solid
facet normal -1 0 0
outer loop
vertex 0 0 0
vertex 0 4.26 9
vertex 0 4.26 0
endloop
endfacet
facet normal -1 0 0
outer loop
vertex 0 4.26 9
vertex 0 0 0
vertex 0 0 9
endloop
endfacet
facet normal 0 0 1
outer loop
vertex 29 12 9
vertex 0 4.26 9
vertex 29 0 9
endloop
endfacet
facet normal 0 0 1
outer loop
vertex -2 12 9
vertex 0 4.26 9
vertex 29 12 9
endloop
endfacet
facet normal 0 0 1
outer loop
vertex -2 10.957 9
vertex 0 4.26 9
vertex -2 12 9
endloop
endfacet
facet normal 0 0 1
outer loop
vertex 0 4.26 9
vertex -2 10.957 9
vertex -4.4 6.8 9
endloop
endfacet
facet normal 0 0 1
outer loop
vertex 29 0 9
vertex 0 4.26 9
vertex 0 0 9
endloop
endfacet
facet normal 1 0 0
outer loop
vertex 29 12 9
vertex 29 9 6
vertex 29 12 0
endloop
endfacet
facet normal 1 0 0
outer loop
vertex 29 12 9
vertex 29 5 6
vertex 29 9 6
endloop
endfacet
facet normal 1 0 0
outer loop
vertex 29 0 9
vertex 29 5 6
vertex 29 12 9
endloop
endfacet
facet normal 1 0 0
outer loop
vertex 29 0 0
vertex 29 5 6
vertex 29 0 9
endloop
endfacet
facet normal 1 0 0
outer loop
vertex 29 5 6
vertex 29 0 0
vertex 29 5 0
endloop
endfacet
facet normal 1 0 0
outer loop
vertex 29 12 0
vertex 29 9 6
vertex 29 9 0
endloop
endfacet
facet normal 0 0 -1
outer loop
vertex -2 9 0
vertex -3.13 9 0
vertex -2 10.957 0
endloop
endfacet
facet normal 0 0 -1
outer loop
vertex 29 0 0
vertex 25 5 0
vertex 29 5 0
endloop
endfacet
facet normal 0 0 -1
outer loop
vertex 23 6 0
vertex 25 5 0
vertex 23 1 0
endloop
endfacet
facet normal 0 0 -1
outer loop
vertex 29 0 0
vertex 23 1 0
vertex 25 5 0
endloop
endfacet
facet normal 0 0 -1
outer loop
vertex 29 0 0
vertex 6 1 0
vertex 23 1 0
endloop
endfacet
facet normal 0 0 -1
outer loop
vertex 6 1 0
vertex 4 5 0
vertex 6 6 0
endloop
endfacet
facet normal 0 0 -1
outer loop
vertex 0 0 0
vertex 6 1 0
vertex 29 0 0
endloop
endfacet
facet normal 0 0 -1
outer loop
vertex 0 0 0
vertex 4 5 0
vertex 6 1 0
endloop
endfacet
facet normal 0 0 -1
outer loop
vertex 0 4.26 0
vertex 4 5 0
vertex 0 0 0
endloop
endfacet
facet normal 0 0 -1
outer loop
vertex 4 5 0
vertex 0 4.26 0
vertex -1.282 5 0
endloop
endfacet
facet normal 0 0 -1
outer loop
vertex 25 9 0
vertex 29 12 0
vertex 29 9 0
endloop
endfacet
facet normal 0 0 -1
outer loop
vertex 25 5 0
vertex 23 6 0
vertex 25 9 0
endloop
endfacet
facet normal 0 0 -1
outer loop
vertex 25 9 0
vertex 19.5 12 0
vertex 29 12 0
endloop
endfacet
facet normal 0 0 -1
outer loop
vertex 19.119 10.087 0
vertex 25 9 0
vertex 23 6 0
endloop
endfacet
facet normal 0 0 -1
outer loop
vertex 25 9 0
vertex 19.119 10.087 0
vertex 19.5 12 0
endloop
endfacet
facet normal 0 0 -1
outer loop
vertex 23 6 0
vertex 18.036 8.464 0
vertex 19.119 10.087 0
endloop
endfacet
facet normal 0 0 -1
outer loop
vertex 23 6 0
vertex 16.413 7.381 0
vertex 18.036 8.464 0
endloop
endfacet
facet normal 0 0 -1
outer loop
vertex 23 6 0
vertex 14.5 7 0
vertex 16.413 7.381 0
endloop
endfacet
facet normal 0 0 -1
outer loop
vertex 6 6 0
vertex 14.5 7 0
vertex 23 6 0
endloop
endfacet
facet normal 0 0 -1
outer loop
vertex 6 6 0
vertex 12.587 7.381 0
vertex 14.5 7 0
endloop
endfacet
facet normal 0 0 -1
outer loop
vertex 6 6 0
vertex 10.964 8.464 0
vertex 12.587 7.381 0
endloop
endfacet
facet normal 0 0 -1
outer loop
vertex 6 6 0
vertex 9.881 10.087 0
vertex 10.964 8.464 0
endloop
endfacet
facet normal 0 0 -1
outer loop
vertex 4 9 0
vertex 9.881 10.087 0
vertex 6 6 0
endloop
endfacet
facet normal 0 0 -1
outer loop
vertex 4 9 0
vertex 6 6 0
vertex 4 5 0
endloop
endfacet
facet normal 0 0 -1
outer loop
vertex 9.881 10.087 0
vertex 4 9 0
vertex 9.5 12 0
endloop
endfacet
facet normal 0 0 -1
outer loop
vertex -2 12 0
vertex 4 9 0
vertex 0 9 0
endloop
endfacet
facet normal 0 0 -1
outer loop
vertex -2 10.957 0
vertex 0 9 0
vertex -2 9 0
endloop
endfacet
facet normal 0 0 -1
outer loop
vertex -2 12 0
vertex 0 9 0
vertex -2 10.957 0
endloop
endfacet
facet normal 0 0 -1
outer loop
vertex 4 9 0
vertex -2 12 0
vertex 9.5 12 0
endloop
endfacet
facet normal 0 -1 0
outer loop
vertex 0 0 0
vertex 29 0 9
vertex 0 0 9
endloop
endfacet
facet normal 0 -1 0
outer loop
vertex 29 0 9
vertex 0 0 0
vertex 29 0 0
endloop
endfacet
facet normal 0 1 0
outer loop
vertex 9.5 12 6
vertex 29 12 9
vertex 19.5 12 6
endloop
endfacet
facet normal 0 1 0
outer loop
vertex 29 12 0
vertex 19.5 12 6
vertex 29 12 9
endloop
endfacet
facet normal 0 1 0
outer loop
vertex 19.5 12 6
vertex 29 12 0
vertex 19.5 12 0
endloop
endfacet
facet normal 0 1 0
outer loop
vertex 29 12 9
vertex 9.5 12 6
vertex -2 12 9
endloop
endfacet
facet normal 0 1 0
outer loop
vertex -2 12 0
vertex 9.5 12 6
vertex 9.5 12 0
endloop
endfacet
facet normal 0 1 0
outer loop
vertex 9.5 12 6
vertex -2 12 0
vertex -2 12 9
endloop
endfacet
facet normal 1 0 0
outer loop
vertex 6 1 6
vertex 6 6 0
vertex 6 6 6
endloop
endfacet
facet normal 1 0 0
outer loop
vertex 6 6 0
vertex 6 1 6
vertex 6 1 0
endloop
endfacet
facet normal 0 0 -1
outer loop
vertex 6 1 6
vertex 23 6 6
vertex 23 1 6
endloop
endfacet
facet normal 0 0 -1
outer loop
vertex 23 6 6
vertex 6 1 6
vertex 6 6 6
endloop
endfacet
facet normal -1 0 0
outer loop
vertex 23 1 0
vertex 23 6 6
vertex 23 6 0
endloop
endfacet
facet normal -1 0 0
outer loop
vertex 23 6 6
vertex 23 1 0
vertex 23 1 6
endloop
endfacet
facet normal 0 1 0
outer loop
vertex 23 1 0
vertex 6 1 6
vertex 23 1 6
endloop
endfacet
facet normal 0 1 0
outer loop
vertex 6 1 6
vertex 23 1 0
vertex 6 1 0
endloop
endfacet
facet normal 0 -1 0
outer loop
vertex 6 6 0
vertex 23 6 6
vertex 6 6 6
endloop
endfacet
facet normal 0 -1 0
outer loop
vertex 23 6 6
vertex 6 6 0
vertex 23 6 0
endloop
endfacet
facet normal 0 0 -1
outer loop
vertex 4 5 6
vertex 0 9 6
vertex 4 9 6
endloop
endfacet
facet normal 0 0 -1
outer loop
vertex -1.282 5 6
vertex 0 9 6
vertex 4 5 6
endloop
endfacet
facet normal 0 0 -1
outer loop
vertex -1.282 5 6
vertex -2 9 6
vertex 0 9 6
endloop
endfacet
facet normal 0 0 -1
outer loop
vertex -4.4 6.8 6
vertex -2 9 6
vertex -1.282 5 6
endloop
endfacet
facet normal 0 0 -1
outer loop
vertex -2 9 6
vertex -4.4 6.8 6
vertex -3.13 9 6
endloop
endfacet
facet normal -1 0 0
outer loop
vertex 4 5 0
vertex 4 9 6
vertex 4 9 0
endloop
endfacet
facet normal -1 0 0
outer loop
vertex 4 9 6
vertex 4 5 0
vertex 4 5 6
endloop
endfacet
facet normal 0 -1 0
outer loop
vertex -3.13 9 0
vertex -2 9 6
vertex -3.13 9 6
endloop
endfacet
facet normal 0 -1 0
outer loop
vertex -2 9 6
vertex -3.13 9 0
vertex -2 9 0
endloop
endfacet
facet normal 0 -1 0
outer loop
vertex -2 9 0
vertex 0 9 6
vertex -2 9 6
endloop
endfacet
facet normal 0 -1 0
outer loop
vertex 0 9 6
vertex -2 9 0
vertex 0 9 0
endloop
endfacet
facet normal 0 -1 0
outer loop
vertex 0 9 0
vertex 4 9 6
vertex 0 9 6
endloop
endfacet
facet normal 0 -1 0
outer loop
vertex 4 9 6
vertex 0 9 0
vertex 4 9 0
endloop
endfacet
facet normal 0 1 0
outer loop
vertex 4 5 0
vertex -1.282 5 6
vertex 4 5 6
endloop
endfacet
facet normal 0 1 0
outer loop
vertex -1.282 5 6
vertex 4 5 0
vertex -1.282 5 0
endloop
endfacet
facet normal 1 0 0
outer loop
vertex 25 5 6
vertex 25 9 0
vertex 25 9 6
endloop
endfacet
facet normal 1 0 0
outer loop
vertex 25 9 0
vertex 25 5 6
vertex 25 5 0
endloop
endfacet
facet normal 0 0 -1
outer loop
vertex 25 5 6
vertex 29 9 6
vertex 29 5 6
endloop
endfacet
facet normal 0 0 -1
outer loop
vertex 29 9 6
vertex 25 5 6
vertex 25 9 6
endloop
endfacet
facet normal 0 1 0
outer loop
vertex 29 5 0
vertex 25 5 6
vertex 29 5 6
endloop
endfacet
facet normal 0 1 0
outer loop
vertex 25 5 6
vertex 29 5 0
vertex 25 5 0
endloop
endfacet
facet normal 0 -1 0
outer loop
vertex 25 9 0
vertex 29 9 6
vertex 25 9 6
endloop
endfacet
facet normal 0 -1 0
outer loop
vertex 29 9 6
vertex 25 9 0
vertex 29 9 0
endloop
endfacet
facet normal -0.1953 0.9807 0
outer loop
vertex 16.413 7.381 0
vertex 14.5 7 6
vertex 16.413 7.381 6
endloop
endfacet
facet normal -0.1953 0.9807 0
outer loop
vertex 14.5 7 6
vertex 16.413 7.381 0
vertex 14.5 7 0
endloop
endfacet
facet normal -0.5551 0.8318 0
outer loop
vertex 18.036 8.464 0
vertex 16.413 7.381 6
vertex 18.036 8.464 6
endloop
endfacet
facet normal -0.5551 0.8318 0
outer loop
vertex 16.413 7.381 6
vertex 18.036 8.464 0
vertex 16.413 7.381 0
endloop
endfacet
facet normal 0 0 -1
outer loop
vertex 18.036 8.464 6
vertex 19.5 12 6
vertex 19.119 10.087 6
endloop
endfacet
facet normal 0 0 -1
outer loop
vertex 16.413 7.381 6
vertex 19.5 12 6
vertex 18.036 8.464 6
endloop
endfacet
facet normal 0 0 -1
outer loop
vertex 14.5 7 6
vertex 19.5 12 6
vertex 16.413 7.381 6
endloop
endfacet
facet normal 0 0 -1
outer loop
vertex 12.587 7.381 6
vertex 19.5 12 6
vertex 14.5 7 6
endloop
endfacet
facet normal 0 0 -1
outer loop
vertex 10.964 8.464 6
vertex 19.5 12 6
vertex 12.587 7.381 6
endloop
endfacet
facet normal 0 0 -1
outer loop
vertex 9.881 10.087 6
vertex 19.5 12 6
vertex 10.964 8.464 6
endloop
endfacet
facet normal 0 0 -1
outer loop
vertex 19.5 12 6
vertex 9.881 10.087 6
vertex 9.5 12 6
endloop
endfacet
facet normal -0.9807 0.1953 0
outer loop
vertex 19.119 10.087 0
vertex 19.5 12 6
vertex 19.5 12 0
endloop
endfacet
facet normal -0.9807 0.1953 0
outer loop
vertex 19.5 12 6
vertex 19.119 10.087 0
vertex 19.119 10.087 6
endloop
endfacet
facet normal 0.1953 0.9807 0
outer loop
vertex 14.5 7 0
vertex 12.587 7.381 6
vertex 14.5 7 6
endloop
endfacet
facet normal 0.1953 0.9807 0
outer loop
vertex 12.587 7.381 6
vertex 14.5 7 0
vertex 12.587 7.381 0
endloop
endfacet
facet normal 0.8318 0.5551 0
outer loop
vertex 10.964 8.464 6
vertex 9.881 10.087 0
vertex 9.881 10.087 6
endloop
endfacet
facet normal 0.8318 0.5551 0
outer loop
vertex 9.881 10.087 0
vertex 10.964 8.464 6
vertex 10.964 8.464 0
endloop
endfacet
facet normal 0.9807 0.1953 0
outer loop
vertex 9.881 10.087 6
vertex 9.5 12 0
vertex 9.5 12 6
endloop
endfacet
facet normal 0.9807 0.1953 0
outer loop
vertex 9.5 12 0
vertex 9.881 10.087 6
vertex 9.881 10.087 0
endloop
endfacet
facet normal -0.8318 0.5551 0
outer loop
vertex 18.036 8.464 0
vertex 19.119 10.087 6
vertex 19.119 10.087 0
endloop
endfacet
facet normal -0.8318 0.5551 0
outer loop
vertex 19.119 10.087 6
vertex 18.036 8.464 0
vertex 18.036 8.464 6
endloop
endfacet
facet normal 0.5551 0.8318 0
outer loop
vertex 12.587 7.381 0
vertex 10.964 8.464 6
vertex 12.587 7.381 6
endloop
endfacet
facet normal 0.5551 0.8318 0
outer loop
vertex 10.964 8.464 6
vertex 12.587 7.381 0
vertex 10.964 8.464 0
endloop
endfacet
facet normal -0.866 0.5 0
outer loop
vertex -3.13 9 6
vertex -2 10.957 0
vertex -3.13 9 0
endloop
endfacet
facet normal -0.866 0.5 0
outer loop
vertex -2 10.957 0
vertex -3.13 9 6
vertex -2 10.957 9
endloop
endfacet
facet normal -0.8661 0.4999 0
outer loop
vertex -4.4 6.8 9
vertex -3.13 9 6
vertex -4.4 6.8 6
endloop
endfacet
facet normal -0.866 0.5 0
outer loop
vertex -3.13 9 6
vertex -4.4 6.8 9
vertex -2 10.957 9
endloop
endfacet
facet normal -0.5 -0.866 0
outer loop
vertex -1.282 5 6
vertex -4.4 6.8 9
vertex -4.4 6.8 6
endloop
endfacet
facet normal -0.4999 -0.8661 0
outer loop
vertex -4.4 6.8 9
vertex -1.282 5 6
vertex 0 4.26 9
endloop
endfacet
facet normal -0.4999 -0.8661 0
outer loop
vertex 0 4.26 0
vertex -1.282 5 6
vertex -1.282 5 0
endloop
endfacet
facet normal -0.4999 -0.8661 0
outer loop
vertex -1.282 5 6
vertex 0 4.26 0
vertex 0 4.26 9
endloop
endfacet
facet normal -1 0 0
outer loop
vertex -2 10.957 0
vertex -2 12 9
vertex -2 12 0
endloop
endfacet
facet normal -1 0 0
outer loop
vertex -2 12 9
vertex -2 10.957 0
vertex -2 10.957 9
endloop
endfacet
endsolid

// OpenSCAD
height = 9;
hole_depth = 6;

difference() {
    cube([29, 12, height]);
    translate([6, 1, 0]) cube([17, 5, hole_depth]);
    translate([0, 5, 0]) cube([4, 4, hole_depth]);
    translate([25, 5, 0]) cube([4, 4, hole_depth]);
    translate ([14.5, 12, 0]) cylinder(hole_depth, r=5);
}

translate([-2, 9, 0]) cube([2, 3, height])

difference() {
    rotate([0, 0, 20]) cube([7, 7, height]);
     translate([6, 1, 0]) cube([17, 5, hole_depth]);
    translate([-4, 5, 0]) cube([8, 4, hole_depth]);
  }

 difference() {
    translate([-4.4, 6.8, 0]) rotate([0, 0, -30]) cube([7, 6, height]);
    translate([6, 1, 0]) cube([17, 5, hole_depth]);
    translate([-6, 5, 0]) cube([10, 4, hole_depth]);  
  }
  
